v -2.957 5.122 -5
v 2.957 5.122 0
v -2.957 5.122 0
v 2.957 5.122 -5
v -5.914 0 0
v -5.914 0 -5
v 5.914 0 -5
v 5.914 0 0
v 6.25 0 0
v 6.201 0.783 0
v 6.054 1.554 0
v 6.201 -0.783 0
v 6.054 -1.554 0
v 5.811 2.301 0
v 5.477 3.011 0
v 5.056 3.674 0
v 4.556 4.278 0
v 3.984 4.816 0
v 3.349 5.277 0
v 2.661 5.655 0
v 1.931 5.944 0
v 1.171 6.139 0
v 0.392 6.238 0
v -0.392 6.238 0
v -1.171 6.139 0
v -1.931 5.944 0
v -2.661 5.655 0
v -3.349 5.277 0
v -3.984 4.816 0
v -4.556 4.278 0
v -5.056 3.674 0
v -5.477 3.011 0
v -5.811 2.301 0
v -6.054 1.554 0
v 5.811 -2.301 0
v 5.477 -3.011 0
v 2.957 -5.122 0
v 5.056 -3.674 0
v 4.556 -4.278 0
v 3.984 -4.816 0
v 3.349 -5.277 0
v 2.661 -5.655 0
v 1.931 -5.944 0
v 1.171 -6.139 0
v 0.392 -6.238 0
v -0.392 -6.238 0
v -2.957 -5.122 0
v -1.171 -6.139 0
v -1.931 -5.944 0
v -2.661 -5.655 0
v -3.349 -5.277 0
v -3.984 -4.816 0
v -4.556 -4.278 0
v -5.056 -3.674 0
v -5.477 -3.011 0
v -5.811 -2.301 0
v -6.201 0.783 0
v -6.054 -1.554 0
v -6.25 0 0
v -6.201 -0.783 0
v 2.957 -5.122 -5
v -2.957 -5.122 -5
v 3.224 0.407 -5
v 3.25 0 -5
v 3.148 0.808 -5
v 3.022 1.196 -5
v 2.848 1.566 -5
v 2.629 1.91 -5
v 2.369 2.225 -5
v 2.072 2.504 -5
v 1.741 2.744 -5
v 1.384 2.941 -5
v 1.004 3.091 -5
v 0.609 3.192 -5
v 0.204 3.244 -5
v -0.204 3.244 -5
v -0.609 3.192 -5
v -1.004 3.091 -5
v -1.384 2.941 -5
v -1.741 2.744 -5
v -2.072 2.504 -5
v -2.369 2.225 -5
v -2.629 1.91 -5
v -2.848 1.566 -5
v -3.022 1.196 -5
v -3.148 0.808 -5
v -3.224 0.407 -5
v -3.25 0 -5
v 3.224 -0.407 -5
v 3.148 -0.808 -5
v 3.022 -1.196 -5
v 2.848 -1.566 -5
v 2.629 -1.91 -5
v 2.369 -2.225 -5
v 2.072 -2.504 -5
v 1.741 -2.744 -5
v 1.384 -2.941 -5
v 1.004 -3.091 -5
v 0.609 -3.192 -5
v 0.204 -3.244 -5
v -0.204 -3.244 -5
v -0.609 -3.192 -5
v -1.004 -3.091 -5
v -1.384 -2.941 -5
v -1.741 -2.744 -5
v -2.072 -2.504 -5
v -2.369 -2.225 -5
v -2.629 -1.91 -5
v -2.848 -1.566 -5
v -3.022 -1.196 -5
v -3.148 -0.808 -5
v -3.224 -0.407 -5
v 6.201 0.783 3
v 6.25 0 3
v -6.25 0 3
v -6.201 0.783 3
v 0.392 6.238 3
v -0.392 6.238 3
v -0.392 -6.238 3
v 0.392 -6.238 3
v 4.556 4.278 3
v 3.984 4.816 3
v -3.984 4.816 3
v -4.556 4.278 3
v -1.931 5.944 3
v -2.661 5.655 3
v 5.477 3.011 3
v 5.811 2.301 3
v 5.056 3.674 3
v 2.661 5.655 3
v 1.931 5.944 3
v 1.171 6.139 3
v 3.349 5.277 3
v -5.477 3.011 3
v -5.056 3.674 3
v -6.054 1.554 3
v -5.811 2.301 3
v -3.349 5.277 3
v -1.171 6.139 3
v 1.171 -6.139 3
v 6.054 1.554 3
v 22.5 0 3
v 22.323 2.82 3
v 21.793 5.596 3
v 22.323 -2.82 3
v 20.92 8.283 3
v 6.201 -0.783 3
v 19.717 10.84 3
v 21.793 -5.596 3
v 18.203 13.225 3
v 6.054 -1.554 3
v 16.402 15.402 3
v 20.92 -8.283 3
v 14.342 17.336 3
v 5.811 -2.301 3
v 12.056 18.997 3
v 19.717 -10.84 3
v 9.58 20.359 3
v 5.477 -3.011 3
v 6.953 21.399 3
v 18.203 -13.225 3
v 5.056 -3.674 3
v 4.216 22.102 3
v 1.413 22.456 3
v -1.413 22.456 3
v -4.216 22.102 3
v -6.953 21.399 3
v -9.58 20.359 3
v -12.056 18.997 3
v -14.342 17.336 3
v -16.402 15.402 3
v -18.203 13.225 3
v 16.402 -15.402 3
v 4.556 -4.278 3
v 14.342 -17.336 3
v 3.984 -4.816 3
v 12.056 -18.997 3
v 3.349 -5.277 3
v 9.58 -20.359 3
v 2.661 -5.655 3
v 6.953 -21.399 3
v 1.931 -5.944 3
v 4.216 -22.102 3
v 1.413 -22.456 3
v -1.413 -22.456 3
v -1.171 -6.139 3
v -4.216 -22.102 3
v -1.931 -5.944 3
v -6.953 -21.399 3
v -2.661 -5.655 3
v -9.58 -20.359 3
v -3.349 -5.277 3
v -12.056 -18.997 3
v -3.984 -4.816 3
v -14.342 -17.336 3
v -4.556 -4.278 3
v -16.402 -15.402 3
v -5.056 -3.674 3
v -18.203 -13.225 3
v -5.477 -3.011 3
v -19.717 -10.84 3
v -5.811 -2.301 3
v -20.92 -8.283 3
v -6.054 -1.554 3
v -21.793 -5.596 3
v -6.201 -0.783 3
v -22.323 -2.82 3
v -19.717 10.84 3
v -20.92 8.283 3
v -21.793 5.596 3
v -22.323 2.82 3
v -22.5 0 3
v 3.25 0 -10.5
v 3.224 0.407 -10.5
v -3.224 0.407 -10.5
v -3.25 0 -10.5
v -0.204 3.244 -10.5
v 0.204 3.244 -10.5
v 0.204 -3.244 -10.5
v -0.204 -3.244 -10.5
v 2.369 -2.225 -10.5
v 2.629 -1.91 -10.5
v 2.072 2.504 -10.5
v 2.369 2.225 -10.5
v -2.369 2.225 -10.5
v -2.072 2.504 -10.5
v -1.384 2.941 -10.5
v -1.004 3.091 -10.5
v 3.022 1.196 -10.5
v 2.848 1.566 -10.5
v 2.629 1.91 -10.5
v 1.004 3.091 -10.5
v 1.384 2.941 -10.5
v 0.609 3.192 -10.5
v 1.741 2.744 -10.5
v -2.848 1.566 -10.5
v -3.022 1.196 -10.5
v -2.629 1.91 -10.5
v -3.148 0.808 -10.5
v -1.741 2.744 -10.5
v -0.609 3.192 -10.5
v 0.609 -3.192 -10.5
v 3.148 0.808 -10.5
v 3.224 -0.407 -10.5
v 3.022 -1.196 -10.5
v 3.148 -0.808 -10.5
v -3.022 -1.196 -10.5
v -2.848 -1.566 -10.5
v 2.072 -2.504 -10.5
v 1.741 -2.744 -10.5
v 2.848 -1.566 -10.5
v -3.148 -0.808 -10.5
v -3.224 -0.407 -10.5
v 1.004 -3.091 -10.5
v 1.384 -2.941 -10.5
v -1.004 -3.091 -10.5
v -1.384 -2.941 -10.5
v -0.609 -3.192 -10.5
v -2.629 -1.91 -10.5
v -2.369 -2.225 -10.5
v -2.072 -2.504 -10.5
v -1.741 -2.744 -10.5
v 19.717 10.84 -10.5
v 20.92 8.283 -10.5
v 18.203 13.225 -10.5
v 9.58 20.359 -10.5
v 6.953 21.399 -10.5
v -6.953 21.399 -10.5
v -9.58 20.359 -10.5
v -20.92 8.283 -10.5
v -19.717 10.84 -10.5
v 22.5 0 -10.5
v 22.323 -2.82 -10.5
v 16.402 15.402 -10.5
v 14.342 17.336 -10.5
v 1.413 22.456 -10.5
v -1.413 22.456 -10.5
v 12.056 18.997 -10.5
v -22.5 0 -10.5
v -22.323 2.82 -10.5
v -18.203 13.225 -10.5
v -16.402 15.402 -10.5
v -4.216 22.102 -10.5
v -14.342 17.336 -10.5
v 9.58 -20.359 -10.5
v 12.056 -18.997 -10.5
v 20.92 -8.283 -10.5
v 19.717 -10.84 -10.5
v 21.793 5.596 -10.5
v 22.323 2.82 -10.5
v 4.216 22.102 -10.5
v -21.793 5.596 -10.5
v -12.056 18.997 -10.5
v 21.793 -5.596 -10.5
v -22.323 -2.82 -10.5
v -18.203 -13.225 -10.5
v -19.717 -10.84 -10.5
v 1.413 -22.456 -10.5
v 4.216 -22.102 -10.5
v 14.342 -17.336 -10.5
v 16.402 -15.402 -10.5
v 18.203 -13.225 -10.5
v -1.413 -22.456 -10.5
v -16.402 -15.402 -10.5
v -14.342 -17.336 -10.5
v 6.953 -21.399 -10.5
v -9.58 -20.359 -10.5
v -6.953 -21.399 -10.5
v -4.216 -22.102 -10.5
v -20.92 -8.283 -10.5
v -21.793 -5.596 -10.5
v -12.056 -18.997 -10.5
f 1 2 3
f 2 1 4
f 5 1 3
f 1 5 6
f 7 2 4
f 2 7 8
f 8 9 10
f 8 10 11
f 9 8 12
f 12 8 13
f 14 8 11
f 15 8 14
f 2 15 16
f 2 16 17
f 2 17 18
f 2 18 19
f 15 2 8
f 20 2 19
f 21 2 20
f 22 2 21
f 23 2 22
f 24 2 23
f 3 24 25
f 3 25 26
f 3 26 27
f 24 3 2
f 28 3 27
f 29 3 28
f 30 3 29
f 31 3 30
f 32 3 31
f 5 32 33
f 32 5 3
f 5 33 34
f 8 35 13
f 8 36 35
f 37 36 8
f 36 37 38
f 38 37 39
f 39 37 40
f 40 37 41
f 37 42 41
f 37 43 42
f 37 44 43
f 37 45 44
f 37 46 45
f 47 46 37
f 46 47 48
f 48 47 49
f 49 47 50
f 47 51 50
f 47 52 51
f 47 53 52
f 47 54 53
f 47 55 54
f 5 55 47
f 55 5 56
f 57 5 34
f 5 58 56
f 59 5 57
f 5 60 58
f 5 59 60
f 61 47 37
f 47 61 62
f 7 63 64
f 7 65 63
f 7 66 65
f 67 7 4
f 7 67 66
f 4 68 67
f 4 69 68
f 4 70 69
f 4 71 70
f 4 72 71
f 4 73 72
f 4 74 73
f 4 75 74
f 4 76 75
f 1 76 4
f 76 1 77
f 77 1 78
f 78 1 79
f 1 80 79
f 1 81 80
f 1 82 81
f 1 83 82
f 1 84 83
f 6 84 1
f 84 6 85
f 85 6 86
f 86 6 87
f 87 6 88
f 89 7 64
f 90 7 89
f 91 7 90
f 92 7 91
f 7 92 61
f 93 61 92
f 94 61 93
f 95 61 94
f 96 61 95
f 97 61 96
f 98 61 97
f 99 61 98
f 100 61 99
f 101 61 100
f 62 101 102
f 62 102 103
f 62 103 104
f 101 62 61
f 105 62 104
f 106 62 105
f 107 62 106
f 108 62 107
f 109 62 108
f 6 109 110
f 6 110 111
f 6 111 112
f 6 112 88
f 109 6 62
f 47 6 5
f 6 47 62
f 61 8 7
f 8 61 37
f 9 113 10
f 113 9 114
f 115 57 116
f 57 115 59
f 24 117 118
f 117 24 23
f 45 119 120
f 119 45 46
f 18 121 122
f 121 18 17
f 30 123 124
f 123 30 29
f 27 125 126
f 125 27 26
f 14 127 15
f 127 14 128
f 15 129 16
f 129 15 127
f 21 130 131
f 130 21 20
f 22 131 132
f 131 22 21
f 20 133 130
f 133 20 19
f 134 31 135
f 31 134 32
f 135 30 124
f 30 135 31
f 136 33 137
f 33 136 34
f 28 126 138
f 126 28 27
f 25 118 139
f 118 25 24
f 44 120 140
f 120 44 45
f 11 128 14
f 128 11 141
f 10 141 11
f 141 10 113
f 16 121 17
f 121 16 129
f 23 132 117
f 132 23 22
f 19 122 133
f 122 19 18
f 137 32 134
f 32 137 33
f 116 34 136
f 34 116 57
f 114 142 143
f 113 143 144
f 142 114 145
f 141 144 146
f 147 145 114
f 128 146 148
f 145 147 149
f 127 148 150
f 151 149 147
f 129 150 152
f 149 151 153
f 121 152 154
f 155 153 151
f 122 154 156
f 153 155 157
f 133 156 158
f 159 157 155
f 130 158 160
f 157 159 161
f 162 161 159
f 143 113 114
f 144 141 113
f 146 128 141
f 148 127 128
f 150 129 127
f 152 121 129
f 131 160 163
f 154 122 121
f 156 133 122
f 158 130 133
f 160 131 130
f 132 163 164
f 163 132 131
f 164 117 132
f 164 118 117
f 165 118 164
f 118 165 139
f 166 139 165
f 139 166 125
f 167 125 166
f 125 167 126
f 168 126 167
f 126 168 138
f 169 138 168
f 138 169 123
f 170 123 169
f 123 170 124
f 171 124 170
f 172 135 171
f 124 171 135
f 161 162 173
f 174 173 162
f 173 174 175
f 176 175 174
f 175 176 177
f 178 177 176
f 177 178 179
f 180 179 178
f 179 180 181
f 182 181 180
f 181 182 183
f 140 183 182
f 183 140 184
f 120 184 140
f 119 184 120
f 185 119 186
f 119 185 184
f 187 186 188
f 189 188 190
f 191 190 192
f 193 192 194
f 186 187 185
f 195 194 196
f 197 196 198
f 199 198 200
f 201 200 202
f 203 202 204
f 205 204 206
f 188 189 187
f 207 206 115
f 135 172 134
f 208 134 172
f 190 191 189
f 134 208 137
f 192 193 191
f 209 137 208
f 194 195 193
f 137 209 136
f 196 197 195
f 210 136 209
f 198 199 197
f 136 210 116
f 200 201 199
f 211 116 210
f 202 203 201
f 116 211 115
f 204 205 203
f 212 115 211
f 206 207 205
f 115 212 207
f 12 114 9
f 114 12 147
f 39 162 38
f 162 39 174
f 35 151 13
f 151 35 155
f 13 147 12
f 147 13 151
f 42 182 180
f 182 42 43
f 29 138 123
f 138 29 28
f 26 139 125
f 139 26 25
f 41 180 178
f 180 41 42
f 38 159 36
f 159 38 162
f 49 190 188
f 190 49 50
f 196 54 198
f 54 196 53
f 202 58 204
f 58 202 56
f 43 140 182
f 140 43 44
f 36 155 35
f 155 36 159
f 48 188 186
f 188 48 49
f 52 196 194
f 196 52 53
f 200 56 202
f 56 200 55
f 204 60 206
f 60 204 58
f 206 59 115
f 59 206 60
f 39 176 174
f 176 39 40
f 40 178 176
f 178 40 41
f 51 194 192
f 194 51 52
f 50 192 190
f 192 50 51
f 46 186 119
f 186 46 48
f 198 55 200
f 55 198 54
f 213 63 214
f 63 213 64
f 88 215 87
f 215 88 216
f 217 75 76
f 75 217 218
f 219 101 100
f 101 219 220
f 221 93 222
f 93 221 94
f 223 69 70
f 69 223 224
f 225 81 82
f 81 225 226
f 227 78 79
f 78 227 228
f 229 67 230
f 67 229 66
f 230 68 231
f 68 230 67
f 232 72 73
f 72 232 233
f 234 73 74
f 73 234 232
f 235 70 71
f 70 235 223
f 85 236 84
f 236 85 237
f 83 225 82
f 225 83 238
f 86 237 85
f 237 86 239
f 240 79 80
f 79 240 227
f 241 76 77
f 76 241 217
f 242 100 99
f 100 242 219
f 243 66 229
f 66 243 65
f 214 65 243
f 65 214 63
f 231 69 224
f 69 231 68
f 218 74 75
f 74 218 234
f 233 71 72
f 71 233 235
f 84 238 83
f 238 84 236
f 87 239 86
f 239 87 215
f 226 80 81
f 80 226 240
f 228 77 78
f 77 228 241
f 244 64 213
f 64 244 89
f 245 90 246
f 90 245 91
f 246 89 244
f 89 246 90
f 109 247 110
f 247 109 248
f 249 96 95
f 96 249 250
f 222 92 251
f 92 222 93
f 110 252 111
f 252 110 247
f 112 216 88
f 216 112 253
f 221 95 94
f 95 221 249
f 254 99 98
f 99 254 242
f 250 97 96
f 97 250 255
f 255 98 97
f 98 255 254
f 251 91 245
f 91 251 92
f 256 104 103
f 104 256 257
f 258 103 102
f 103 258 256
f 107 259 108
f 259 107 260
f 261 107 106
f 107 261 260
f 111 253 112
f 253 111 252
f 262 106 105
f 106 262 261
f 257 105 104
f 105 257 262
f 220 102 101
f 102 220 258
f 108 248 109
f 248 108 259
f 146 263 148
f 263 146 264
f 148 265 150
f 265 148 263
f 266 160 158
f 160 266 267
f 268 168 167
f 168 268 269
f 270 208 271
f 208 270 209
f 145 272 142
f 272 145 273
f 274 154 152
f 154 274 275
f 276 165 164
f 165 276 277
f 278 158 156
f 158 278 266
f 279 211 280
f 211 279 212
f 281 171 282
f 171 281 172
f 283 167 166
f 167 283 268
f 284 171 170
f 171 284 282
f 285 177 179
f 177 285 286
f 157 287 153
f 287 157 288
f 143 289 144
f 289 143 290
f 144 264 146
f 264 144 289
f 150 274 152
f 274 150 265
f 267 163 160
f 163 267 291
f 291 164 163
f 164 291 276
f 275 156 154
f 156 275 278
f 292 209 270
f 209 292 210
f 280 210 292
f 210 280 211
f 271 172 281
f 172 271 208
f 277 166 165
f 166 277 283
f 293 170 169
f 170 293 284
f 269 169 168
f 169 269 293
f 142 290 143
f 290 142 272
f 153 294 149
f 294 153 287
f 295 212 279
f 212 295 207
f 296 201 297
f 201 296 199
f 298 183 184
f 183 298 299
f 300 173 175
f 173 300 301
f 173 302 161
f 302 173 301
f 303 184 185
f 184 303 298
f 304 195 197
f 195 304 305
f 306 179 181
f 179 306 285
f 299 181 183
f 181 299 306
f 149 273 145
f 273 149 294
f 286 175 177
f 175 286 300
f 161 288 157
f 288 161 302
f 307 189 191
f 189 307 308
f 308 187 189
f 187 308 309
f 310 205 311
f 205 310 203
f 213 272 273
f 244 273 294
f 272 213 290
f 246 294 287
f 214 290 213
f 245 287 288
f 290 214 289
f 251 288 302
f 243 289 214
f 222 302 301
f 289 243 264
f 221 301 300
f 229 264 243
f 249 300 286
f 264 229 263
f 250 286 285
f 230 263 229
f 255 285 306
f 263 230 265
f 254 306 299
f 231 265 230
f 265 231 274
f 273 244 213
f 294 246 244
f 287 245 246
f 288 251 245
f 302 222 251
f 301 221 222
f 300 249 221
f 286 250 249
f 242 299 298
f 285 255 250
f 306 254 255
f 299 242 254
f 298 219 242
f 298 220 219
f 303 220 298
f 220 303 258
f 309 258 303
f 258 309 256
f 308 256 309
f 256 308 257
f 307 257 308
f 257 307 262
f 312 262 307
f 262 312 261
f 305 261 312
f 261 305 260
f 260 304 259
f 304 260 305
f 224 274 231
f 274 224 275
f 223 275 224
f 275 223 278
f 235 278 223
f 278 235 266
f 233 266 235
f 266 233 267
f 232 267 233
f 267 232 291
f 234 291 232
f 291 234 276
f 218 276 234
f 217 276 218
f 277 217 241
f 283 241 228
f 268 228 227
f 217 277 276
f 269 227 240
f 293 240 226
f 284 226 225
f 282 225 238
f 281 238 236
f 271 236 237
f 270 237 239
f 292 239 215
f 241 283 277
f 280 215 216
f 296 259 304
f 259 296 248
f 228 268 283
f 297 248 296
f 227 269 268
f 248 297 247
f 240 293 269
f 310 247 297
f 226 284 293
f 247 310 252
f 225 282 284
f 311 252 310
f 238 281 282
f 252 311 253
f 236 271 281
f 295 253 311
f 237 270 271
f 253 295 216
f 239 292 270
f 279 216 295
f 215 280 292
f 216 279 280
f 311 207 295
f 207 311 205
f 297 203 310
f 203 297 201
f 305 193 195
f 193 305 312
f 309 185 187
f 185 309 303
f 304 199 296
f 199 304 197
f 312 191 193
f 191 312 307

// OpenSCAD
$fn = 50;


difference() {
	union() {
		translate(v = [0, 0, -10.5000000000]) {
			cylinder(h = 13.5000000000, r = 22.5000000000);
		}
	}
	union() {
		translate(v = [0, 0, 0]) {
			rotate(a = [0, 0, 0]) {
				difference() {
					union() {
						translate(v = [0, 0, -5]) {
							linear_extrude(height = 5) {
								polygon(points = [[5.9142500000, 0.0000000000], [2.9571250000, 5.1218907443], [-2.9571250000, 5.1218907443], [-5.9142500000, 0.0000000000], [-2.9571250000, -5.1218907443], [2.9571250000, -5.1218907443]]);
							}
						}
					}
					union();
				}
			}
		}
		#cylinder(h = 3, r = 6.2500000000);
		#translate(v = [0, 0, -100.0000000000]) {
			cylinder(h = 200, r = 3.2500000000);
		}
	}
}
